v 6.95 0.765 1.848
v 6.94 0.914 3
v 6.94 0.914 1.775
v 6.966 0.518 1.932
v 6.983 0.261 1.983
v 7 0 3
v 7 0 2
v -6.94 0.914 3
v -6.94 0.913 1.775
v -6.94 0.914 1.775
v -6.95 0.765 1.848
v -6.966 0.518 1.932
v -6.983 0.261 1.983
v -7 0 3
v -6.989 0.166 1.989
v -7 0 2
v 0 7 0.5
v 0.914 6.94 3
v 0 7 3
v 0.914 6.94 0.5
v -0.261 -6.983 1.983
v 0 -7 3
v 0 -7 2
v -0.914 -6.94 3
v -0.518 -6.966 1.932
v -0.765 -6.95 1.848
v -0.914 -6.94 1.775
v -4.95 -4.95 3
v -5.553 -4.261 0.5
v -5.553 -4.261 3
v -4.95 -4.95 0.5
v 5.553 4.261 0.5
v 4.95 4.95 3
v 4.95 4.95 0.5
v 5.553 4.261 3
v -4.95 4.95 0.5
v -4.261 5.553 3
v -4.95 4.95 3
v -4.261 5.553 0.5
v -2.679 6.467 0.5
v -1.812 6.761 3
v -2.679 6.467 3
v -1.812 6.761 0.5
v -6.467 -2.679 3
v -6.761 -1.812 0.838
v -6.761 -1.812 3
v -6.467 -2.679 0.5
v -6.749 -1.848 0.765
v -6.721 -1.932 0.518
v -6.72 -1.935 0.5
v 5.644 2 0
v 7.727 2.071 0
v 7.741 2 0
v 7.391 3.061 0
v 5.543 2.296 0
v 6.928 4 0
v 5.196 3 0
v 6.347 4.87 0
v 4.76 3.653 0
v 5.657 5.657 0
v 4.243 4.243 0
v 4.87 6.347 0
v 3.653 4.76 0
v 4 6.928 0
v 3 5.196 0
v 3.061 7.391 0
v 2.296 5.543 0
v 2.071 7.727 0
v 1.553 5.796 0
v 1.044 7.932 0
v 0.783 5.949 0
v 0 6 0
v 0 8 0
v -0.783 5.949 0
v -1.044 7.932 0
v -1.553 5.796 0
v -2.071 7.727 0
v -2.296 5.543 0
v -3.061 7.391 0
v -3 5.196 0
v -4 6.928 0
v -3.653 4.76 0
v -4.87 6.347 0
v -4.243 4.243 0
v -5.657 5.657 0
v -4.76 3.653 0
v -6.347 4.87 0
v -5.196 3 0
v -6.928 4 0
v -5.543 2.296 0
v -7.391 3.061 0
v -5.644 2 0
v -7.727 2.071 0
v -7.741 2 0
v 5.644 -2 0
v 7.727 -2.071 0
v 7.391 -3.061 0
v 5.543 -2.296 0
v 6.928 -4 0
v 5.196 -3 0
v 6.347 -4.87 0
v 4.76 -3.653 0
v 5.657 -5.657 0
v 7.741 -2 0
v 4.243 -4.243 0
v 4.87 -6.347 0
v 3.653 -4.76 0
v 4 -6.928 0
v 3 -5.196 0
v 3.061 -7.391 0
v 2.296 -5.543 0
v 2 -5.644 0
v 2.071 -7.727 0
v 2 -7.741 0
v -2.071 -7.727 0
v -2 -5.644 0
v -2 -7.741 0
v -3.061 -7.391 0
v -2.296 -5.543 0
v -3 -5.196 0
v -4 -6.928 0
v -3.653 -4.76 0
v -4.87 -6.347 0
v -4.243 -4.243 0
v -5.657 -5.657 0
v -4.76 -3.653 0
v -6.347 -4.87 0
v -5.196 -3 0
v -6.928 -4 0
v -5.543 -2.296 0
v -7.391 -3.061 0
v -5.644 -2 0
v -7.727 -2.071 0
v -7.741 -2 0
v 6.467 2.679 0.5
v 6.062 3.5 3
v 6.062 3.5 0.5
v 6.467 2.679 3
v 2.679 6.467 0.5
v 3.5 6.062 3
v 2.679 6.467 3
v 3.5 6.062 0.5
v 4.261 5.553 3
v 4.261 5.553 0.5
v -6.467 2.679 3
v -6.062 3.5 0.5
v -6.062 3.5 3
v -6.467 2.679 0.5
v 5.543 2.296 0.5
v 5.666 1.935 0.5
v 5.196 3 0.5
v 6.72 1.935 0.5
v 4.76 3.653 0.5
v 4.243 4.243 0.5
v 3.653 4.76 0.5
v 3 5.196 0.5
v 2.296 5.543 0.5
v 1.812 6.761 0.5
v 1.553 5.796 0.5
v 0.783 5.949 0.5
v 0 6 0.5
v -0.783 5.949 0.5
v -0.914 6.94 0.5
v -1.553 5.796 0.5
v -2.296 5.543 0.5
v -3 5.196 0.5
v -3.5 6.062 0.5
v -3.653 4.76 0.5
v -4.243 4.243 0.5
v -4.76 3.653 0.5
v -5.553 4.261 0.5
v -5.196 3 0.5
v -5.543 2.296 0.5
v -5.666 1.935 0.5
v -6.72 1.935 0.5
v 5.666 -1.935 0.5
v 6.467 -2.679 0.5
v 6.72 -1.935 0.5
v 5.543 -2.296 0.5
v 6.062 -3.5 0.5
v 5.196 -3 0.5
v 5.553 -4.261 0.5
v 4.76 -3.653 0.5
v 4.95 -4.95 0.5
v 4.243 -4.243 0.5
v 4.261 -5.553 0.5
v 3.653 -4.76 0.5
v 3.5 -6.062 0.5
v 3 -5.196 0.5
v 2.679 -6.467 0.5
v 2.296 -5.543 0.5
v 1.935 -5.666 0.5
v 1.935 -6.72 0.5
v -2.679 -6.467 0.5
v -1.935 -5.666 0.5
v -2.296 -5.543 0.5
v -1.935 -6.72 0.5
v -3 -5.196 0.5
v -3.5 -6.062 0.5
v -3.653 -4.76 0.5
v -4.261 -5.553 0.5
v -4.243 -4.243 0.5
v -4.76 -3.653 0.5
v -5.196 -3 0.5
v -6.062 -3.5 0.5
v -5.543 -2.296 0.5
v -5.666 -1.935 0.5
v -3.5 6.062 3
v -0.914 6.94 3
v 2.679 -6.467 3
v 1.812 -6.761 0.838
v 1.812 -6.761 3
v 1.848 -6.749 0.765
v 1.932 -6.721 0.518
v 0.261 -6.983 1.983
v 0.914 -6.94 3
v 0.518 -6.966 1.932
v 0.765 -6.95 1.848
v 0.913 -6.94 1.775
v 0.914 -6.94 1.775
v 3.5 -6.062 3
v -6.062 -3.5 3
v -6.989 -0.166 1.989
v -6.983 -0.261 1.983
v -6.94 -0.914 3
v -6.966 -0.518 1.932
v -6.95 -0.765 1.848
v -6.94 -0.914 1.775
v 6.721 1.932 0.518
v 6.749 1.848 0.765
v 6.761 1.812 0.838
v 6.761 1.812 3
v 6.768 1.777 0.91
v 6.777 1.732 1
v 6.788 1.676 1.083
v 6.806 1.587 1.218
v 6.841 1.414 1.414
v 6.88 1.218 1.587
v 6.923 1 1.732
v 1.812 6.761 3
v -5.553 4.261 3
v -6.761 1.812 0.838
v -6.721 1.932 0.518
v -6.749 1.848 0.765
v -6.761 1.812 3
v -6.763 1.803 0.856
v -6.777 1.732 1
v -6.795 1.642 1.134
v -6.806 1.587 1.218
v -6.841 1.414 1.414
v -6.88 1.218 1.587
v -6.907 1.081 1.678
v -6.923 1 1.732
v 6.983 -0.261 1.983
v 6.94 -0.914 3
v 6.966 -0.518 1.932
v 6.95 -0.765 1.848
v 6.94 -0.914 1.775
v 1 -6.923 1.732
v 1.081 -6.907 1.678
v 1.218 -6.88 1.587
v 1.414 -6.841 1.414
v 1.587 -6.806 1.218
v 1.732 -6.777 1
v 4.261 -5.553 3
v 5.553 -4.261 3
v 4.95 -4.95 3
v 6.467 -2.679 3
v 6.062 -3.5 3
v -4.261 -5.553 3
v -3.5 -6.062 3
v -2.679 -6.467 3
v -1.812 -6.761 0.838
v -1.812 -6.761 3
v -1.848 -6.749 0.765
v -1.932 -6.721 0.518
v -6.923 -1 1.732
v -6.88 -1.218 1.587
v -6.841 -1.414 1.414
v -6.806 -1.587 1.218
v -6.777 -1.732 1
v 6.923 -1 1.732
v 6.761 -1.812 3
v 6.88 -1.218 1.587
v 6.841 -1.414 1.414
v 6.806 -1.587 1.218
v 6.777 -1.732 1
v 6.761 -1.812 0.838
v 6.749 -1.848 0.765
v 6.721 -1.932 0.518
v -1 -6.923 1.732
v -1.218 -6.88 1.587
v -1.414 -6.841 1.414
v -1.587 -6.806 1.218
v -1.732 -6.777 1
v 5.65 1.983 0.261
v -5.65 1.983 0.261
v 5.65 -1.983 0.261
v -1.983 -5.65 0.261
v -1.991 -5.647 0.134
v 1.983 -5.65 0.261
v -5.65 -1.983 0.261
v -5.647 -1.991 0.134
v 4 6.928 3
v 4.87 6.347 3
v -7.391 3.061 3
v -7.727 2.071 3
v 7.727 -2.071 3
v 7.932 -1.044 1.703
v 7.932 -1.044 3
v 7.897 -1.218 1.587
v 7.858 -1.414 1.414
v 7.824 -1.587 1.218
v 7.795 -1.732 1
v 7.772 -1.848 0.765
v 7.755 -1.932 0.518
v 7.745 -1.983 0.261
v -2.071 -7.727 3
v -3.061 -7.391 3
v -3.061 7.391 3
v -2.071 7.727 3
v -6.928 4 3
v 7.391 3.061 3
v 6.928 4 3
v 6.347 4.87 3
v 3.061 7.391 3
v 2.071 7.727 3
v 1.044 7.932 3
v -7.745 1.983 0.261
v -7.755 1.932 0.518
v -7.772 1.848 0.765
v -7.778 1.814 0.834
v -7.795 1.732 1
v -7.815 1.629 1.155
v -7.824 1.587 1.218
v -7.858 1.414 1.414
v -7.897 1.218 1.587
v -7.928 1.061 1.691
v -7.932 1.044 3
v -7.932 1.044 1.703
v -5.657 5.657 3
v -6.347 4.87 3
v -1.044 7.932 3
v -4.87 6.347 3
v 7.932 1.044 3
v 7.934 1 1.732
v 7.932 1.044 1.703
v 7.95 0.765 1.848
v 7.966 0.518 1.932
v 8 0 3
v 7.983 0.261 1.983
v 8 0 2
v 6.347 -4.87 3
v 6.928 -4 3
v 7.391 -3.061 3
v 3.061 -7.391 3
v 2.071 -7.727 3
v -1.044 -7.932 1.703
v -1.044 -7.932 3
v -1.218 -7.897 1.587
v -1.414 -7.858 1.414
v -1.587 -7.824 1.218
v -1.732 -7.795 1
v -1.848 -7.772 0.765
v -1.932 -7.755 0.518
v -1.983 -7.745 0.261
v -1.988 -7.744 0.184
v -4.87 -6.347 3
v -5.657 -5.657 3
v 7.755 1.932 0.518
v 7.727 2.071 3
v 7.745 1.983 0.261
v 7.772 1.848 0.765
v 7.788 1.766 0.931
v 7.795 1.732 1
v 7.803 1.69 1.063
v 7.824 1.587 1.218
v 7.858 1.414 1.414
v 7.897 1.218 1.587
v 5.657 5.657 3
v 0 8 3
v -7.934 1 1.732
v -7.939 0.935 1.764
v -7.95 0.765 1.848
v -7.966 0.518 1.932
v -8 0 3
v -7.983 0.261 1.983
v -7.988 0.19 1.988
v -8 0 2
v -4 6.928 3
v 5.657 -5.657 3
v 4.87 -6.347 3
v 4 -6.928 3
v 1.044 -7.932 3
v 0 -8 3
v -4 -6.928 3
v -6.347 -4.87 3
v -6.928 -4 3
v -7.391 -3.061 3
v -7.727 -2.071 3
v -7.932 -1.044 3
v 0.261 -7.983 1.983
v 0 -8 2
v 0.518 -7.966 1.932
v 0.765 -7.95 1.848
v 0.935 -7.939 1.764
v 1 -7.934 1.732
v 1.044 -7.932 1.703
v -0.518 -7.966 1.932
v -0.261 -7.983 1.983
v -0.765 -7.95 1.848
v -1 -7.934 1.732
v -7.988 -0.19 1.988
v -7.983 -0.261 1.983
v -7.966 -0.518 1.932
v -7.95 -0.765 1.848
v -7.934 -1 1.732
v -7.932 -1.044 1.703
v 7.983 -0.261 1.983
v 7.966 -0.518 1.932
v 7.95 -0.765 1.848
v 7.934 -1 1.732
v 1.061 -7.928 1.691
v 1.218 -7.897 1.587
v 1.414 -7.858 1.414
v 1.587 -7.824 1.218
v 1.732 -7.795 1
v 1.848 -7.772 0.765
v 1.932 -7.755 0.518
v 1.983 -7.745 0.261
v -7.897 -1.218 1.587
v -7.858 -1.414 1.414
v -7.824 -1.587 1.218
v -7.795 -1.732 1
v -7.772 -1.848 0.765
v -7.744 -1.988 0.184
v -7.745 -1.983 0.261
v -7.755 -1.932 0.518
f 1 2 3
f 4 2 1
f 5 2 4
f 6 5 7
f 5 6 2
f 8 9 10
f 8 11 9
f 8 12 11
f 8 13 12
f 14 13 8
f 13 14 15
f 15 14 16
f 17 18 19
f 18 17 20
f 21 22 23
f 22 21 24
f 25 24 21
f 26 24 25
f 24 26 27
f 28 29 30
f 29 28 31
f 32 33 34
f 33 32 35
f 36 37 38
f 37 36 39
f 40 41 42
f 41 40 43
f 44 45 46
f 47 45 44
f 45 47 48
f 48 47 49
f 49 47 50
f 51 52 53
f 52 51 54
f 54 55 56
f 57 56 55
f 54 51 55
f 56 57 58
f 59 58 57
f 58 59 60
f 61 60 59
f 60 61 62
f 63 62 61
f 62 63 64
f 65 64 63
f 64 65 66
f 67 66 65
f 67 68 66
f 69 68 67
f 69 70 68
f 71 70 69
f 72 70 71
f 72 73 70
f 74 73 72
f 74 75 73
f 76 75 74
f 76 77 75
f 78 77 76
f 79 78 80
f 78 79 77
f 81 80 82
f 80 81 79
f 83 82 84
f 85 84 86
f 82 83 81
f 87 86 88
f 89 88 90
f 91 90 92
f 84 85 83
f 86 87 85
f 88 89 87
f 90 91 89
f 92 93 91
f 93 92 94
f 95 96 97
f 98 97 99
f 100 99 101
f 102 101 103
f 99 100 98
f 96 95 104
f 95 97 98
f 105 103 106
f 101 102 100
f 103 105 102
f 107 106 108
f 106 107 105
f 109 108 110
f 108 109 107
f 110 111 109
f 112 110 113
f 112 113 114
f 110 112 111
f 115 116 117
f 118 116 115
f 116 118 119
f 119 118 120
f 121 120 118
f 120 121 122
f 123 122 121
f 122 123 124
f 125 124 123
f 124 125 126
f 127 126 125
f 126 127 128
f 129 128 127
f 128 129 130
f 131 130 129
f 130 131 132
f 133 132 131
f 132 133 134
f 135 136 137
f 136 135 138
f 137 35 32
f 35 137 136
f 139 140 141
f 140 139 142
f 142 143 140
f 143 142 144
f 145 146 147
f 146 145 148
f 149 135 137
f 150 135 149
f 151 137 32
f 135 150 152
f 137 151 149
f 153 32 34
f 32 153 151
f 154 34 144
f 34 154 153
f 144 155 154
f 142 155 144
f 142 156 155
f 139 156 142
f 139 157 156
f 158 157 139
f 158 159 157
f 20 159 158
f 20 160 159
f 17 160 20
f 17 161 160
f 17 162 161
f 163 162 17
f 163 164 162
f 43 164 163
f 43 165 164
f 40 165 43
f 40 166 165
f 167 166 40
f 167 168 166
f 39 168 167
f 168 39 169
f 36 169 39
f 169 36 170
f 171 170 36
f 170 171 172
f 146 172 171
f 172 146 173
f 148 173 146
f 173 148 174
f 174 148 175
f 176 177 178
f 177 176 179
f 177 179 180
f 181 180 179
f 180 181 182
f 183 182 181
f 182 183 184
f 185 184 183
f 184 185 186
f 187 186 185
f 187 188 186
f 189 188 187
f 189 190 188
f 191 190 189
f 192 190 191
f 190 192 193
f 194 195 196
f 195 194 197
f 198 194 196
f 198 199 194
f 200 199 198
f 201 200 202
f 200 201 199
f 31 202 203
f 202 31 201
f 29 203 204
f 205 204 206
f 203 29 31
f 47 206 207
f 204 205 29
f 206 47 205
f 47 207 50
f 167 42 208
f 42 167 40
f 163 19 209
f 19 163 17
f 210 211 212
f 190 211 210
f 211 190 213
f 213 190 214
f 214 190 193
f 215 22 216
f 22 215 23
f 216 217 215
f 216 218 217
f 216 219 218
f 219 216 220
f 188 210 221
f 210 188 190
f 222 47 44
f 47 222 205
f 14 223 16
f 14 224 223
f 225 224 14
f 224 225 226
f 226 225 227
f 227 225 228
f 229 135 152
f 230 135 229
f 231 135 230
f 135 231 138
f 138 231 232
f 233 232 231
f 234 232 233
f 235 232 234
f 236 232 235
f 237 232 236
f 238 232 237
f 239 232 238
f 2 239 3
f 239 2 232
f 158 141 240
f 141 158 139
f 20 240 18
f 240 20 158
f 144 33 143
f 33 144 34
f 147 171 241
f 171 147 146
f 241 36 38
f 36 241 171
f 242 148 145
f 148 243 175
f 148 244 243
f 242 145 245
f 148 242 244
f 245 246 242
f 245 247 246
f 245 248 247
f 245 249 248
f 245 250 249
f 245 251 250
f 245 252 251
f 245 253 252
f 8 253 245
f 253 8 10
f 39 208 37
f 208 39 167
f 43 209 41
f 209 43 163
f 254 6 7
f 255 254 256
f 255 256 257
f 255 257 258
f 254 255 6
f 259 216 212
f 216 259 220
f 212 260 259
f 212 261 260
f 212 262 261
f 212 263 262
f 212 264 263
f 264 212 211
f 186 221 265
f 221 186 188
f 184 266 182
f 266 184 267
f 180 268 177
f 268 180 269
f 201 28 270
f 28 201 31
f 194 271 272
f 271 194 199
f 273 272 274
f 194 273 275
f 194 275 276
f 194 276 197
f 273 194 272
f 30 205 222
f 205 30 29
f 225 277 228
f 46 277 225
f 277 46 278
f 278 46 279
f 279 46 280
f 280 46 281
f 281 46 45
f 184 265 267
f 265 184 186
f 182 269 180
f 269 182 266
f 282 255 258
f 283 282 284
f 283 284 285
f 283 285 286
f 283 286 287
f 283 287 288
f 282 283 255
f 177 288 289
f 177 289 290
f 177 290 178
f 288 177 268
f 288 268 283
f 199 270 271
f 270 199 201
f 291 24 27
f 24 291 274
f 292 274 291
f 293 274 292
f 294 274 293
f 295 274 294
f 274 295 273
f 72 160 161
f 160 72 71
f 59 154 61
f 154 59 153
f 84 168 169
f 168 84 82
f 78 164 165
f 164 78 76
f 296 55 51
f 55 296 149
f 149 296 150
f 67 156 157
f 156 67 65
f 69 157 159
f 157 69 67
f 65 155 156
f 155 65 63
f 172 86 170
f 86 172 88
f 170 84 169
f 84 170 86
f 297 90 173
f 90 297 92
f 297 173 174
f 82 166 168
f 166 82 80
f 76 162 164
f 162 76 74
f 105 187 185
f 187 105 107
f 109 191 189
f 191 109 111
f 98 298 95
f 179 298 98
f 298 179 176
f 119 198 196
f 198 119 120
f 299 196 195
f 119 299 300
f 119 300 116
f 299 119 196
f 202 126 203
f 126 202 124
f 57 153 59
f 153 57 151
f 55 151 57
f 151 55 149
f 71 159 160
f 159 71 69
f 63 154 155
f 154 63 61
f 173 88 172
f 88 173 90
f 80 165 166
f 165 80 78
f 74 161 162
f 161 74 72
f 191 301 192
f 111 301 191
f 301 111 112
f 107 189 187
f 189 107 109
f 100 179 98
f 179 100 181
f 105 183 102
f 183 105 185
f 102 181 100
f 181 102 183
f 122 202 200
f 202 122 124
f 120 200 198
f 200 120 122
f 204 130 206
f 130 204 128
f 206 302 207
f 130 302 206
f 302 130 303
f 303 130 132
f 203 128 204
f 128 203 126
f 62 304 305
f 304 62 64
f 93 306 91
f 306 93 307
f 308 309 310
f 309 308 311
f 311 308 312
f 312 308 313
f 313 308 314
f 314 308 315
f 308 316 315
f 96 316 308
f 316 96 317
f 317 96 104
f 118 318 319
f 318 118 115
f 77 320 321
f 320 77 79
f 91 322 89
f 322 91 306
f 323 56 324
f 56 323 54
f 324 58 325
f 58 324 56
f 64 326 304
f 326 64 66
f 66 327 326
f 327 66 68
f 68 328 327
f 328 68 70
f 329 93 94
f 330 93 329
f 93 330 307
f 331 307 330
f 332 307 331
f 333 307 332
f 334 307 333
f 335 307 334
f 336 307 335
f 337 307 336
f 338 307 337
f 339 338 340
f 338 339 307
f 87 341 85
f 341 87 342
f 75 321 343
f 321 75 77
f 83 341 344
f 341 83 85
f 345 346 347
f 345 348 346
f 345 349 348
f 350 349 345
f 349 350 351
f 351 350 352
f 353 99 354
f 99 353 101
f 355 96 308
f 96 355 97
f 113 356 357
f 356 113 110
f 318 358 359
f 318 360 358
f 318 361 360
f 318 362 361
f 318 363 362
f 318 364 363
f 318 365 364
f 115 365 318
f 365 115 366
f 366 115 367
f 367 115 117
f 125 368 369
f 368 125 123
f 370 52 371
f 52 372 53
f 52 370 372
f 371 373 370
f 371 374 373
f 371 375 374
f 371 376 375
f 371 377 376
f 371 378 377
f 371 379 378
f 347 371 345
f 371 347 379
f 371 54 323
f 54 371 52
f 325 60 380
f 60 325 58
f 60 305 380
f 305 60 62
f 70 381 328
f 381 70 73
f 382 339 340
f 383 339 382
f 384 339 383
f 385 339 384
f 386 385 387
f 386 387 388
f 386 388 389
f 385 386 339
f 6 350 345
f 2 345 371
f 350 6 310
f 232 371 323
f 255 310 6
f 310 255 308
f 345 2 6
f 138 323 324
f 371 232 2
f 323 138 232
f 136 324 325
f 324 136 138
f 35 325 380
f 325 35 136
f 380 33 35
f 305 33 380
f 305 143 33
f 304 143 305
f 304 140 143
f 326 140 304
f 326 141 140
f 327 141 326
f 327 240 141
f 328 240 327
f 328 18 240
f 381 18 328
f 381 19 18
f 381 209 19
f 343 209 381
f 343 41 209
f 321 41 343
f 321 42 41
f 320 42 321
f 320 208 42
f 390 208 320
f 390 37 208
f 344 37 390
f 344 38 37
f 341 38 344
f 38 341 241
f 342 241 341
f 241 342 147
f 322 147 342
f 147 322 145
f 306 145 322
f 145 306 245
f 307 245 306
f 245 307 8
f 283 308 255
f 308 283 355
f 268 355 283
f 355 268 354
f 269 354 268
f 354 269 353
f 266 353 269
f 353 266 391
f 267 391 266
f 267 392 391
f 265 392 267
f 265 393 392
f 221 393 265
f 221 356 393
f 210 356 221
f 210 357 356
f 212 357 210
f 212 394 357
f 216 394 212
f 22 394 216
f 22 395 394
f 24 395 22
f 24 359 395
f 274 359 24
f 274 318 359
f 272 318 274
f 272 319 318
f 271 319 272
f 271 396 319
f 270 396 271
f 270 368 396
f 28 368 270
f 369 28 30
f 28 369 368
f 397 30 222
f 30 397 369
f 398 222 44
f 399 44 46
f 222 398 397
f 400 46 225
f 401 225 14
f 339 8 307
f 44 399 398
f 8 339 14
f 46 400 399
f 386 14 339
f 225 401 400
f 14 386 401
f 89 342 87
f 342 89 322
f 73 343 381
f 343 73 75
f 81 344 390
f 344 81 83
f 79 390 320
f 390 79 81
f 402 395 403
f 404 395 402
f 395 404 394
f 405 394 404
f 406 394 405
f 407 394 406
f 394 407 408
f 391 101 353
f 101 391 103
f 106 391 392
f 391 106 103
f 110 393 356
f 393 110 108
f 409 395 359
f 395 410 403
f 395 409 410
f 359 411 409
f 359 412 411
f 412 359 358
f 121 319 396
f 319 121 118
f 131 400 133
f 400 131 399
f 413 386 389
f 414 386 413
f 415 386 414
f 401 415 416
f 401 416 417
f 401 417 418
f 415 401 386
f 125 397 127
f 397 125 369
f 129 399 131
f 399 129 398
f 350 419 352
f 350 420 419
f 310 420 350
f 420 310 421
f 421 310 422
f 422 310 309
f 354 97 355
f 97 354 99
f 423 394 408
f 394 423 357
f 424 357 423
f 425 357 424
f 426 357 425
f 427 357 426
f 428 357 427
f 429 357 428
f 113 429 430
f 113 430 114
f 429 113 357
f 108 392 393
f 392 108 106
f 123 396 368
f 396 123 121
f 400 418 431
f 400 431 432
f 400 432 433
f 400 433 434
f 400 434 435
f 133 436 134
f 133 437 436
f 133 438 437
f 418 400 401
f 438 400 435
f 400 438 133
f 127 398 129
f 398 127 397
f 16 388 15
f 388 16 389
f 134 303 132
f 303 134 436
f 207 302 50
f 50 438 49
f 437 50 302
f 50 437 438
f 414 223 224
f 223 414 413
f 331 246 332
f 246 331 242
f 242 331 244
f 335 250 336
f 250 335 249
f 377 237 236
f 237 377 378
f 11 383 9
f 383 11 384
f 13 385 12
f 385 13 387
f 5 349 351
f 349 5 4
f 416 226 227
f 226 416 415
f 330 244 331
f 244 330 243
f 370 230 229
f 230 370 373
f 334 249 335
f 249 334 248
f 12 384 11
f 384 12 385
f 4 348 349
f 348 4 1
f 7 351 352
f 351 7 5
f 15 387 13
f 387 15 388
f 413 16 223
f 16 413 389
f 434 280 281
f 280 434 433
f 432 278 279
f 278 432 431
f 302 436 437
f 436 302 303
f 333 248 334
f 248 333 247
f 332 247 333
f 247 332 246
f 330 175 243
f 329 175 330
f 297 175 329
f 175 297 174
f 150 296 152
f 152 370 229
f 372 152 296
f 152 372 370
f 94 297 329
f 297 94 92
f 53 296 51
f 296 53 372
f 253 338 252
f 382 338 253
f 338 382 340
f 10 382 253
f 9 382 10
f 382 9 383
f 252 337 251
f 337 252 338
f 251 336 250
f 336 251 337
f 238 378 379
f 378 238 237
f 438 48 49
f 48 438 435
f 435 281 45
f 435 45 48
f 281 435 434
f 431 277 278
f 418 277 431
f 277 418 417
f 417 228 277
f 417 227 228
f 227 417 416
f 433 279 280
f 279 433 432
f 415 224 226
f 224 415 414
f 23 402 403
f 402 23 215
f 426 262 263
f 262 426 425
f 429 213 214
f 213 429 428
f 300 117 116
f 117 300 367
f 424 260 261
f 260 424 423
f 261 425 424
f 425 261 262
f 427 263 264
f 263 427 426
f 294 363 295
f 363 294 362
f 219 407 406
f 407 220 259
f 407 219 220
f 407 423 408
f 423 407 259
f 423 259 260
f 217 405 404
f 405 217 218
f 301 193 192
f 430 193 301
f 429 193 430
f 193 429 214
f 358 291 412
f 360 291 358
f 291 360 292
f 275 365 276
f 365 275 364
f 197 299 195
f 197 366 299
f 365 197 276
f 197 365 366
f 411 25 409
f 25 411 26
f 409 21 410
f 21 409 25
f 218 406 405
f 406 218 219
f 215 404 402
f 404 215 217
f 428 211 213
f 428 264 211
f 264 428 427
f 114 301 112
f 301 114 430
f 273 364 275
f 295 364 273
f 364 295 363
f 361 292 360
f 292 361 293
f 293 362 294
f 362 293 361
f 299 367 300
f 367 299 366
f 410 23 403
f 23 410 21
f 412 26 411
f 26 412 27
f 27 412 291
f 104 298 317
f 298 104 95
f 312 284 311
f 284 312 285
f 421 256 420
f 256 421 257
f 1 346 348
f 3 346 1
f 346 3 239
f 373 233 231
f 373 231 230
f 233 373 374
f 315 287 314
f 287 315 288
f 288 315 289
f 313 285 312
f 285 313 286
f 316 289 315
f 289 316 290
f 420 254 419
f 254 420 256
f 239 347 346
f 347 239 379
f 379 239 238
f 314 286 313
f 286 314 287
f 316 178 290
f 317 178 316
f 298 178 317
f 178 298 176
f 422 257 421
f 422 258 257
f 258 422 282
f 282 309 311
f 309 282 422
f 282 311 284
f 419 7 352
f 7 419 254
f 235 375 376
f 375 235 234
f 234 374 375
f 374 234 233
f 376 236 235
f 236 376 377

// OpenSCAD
// file: ../build_environments.scad
// build_environments.scad: modules to build level sections
//

module pool(diameter=10.0, wall_height=2.0, step_width=3.0, connections=[])
{
    difference() {
        union() {
        difference() {
            cylinder(h=0.5,r1=diameter+step_width,r2=diameter+step_width,$fn=48);
            translate([0,0,-0.1])
                cylinder(h=0.7,r1=diameter,r2=diameter,$fn=48);
        }
        difference() {
            cylinder(h=wall_height,r1=diameter+step_width+1.0,r2=diameter+step_width+1.0,$fn=48);
            translate([0,0,-0.1])
                cylinder(h=wall_height+0.2,r1=diameter+step_width,r2=diameter+step_width,$fn=48);
        }
        }
    
        for (c = connections)
        {
            rotate([0,90,0]) {
                angle = atan2(c[1],c[0]);
                rotate([-angle,0,0]) {
                    cylinder(h=diameter+5.0,r1=c[2],r2=c[2],$fn=48);
                }
            }
        }
    }
}

module straight(length=10.0, width=2.0, dy1=0.0, dy2=0.0, dz=0.0)
{
    dims = [0, 0, 0, 0, 0, (dz/length)];
    matrix = [
        [ 1, dims[0], dims[1], 0 ],
        [ dims[2], 1, dims[4], 0 ],
        [ dims[5], dims[3], 1, 0 ],
        [ 0, 0, 0, 1 ]
    ];
    multmatrix(matrix)
    difference() {
        translate([dy1,0,0])
        union() {
            rotate([0,90,0]) {
                difference() {
                    cylinder(h=(length-dy1-dy2),r1=width+1.0,r2=width+1.0,$fn=24);
                    translate([0,0,-0.1])
                        cylinder(h=(length-dy1-dy2+0.2),r1=width,r2=width,$fn=24);
                }
                difference() {
                    cylinder(h=1.0,r1=width+2.0,r2=width+2.0,$fn=24);
                    translate([0,0,-0.1])
                        cylinder(h=1.2,r1=width,r2=width,$fn=24);
                }
                translate([0,0,(length-dy1-dy2)-1.0]) {
                    difference() {
                        cylinder(h=1.0,r1=width+2.0,r2=width+2.0,$fn=24);
                        translate([0,0,-0.1])
                            cylinder(h=1.2,r1=width,r2=width,$fn=24);
                    }
                }
            }
        }
        translate([0,0,-(2*width+4.0)/2])
            cube([3*length,3*length,2*width+4.0],center=true);
    }
}

module curve(p0=[0,0], center=[0,0], dir=1, angle=0.0, width=2.0)
{
    radius = sqrt((p0[0]-center[0])*(p0[0]-center[0]) + (p0[1]-center[1])*(p0[1]-center[1]));
    if (dir == 0) {
        difference() {
            rotate([0,0,-90])
            difference() {
                rotate_extrude(angle = angle, convexity = 10, $fn=32)
                    translate([radius, 0, 0])
                        circle(r = width+1.0,$fn=24);
                rotate([0,0,-1.0])
                    rotate_extrude(angle = angle+2.0, convexity = 10, $fn=32)
                        translate([radius, 0, 0])
                            circle(r = width,$fn=24);
            }
            translate([0,0,-(2*width+4.0)/2])
                cube([5*radius,5*radius,2*width+4.0],center=true);
        }
    }
    else {
        difference() {
            rotate([0,0,90])
            difference() {
                rotate_extrude(angle = -angle, convexity = 10, $fn=32)
                    translate([radius, 0, 0])
                        circle(r = width+1.0,$fn=24);
                rotate([0,0,1.0])
                    rotate_extrude(angle = -angle-2.0, convexity = 10, $fn=32)
                        translate([radius, 0, 0])
                            circle(r = width,$fn=24);
            }
            translate([0,0,-(2*width+4.0)/2])
                cube([5*radius,5*radius,2*width+4.0],center=true);
        }
    }

}

// test pool
//pool(diameter=12.0000, wall_height=3.0000, step_width=3.0000, connections=[[0.0000,-26.0000,2.0000], [23.6074,0.0000,2.0000]]);

// test straight, slope
//straight(length=26.0000, width=2.0000, dy1=11.8322, dy2=6.7082, dz=0.0000);
//straight(length=29.1549, width=12.0000, dy1=0.0000, dy2=0.0000, dz=-15.0000);

// test curve
//curve(p0=[23.6074, 0.0000], center=[23.6074, 5.0000], dir=0, angle=60.1011, width=2.0000);
//curve(p0=[33.6426, 12.4219], center=[37.9771, 9.9295], dir=1, angle=120.4627, width=2.0000);
// main file
use <../build_environments.scad>;
pool(diameter=6.0000, wall_height=3.0000, step_width=1.0000, connections=[[-17.0000,0.0000,2.0000], [0.0000,-16.0000,2.0000], [16.0000,0.0000,2.0000]]);
